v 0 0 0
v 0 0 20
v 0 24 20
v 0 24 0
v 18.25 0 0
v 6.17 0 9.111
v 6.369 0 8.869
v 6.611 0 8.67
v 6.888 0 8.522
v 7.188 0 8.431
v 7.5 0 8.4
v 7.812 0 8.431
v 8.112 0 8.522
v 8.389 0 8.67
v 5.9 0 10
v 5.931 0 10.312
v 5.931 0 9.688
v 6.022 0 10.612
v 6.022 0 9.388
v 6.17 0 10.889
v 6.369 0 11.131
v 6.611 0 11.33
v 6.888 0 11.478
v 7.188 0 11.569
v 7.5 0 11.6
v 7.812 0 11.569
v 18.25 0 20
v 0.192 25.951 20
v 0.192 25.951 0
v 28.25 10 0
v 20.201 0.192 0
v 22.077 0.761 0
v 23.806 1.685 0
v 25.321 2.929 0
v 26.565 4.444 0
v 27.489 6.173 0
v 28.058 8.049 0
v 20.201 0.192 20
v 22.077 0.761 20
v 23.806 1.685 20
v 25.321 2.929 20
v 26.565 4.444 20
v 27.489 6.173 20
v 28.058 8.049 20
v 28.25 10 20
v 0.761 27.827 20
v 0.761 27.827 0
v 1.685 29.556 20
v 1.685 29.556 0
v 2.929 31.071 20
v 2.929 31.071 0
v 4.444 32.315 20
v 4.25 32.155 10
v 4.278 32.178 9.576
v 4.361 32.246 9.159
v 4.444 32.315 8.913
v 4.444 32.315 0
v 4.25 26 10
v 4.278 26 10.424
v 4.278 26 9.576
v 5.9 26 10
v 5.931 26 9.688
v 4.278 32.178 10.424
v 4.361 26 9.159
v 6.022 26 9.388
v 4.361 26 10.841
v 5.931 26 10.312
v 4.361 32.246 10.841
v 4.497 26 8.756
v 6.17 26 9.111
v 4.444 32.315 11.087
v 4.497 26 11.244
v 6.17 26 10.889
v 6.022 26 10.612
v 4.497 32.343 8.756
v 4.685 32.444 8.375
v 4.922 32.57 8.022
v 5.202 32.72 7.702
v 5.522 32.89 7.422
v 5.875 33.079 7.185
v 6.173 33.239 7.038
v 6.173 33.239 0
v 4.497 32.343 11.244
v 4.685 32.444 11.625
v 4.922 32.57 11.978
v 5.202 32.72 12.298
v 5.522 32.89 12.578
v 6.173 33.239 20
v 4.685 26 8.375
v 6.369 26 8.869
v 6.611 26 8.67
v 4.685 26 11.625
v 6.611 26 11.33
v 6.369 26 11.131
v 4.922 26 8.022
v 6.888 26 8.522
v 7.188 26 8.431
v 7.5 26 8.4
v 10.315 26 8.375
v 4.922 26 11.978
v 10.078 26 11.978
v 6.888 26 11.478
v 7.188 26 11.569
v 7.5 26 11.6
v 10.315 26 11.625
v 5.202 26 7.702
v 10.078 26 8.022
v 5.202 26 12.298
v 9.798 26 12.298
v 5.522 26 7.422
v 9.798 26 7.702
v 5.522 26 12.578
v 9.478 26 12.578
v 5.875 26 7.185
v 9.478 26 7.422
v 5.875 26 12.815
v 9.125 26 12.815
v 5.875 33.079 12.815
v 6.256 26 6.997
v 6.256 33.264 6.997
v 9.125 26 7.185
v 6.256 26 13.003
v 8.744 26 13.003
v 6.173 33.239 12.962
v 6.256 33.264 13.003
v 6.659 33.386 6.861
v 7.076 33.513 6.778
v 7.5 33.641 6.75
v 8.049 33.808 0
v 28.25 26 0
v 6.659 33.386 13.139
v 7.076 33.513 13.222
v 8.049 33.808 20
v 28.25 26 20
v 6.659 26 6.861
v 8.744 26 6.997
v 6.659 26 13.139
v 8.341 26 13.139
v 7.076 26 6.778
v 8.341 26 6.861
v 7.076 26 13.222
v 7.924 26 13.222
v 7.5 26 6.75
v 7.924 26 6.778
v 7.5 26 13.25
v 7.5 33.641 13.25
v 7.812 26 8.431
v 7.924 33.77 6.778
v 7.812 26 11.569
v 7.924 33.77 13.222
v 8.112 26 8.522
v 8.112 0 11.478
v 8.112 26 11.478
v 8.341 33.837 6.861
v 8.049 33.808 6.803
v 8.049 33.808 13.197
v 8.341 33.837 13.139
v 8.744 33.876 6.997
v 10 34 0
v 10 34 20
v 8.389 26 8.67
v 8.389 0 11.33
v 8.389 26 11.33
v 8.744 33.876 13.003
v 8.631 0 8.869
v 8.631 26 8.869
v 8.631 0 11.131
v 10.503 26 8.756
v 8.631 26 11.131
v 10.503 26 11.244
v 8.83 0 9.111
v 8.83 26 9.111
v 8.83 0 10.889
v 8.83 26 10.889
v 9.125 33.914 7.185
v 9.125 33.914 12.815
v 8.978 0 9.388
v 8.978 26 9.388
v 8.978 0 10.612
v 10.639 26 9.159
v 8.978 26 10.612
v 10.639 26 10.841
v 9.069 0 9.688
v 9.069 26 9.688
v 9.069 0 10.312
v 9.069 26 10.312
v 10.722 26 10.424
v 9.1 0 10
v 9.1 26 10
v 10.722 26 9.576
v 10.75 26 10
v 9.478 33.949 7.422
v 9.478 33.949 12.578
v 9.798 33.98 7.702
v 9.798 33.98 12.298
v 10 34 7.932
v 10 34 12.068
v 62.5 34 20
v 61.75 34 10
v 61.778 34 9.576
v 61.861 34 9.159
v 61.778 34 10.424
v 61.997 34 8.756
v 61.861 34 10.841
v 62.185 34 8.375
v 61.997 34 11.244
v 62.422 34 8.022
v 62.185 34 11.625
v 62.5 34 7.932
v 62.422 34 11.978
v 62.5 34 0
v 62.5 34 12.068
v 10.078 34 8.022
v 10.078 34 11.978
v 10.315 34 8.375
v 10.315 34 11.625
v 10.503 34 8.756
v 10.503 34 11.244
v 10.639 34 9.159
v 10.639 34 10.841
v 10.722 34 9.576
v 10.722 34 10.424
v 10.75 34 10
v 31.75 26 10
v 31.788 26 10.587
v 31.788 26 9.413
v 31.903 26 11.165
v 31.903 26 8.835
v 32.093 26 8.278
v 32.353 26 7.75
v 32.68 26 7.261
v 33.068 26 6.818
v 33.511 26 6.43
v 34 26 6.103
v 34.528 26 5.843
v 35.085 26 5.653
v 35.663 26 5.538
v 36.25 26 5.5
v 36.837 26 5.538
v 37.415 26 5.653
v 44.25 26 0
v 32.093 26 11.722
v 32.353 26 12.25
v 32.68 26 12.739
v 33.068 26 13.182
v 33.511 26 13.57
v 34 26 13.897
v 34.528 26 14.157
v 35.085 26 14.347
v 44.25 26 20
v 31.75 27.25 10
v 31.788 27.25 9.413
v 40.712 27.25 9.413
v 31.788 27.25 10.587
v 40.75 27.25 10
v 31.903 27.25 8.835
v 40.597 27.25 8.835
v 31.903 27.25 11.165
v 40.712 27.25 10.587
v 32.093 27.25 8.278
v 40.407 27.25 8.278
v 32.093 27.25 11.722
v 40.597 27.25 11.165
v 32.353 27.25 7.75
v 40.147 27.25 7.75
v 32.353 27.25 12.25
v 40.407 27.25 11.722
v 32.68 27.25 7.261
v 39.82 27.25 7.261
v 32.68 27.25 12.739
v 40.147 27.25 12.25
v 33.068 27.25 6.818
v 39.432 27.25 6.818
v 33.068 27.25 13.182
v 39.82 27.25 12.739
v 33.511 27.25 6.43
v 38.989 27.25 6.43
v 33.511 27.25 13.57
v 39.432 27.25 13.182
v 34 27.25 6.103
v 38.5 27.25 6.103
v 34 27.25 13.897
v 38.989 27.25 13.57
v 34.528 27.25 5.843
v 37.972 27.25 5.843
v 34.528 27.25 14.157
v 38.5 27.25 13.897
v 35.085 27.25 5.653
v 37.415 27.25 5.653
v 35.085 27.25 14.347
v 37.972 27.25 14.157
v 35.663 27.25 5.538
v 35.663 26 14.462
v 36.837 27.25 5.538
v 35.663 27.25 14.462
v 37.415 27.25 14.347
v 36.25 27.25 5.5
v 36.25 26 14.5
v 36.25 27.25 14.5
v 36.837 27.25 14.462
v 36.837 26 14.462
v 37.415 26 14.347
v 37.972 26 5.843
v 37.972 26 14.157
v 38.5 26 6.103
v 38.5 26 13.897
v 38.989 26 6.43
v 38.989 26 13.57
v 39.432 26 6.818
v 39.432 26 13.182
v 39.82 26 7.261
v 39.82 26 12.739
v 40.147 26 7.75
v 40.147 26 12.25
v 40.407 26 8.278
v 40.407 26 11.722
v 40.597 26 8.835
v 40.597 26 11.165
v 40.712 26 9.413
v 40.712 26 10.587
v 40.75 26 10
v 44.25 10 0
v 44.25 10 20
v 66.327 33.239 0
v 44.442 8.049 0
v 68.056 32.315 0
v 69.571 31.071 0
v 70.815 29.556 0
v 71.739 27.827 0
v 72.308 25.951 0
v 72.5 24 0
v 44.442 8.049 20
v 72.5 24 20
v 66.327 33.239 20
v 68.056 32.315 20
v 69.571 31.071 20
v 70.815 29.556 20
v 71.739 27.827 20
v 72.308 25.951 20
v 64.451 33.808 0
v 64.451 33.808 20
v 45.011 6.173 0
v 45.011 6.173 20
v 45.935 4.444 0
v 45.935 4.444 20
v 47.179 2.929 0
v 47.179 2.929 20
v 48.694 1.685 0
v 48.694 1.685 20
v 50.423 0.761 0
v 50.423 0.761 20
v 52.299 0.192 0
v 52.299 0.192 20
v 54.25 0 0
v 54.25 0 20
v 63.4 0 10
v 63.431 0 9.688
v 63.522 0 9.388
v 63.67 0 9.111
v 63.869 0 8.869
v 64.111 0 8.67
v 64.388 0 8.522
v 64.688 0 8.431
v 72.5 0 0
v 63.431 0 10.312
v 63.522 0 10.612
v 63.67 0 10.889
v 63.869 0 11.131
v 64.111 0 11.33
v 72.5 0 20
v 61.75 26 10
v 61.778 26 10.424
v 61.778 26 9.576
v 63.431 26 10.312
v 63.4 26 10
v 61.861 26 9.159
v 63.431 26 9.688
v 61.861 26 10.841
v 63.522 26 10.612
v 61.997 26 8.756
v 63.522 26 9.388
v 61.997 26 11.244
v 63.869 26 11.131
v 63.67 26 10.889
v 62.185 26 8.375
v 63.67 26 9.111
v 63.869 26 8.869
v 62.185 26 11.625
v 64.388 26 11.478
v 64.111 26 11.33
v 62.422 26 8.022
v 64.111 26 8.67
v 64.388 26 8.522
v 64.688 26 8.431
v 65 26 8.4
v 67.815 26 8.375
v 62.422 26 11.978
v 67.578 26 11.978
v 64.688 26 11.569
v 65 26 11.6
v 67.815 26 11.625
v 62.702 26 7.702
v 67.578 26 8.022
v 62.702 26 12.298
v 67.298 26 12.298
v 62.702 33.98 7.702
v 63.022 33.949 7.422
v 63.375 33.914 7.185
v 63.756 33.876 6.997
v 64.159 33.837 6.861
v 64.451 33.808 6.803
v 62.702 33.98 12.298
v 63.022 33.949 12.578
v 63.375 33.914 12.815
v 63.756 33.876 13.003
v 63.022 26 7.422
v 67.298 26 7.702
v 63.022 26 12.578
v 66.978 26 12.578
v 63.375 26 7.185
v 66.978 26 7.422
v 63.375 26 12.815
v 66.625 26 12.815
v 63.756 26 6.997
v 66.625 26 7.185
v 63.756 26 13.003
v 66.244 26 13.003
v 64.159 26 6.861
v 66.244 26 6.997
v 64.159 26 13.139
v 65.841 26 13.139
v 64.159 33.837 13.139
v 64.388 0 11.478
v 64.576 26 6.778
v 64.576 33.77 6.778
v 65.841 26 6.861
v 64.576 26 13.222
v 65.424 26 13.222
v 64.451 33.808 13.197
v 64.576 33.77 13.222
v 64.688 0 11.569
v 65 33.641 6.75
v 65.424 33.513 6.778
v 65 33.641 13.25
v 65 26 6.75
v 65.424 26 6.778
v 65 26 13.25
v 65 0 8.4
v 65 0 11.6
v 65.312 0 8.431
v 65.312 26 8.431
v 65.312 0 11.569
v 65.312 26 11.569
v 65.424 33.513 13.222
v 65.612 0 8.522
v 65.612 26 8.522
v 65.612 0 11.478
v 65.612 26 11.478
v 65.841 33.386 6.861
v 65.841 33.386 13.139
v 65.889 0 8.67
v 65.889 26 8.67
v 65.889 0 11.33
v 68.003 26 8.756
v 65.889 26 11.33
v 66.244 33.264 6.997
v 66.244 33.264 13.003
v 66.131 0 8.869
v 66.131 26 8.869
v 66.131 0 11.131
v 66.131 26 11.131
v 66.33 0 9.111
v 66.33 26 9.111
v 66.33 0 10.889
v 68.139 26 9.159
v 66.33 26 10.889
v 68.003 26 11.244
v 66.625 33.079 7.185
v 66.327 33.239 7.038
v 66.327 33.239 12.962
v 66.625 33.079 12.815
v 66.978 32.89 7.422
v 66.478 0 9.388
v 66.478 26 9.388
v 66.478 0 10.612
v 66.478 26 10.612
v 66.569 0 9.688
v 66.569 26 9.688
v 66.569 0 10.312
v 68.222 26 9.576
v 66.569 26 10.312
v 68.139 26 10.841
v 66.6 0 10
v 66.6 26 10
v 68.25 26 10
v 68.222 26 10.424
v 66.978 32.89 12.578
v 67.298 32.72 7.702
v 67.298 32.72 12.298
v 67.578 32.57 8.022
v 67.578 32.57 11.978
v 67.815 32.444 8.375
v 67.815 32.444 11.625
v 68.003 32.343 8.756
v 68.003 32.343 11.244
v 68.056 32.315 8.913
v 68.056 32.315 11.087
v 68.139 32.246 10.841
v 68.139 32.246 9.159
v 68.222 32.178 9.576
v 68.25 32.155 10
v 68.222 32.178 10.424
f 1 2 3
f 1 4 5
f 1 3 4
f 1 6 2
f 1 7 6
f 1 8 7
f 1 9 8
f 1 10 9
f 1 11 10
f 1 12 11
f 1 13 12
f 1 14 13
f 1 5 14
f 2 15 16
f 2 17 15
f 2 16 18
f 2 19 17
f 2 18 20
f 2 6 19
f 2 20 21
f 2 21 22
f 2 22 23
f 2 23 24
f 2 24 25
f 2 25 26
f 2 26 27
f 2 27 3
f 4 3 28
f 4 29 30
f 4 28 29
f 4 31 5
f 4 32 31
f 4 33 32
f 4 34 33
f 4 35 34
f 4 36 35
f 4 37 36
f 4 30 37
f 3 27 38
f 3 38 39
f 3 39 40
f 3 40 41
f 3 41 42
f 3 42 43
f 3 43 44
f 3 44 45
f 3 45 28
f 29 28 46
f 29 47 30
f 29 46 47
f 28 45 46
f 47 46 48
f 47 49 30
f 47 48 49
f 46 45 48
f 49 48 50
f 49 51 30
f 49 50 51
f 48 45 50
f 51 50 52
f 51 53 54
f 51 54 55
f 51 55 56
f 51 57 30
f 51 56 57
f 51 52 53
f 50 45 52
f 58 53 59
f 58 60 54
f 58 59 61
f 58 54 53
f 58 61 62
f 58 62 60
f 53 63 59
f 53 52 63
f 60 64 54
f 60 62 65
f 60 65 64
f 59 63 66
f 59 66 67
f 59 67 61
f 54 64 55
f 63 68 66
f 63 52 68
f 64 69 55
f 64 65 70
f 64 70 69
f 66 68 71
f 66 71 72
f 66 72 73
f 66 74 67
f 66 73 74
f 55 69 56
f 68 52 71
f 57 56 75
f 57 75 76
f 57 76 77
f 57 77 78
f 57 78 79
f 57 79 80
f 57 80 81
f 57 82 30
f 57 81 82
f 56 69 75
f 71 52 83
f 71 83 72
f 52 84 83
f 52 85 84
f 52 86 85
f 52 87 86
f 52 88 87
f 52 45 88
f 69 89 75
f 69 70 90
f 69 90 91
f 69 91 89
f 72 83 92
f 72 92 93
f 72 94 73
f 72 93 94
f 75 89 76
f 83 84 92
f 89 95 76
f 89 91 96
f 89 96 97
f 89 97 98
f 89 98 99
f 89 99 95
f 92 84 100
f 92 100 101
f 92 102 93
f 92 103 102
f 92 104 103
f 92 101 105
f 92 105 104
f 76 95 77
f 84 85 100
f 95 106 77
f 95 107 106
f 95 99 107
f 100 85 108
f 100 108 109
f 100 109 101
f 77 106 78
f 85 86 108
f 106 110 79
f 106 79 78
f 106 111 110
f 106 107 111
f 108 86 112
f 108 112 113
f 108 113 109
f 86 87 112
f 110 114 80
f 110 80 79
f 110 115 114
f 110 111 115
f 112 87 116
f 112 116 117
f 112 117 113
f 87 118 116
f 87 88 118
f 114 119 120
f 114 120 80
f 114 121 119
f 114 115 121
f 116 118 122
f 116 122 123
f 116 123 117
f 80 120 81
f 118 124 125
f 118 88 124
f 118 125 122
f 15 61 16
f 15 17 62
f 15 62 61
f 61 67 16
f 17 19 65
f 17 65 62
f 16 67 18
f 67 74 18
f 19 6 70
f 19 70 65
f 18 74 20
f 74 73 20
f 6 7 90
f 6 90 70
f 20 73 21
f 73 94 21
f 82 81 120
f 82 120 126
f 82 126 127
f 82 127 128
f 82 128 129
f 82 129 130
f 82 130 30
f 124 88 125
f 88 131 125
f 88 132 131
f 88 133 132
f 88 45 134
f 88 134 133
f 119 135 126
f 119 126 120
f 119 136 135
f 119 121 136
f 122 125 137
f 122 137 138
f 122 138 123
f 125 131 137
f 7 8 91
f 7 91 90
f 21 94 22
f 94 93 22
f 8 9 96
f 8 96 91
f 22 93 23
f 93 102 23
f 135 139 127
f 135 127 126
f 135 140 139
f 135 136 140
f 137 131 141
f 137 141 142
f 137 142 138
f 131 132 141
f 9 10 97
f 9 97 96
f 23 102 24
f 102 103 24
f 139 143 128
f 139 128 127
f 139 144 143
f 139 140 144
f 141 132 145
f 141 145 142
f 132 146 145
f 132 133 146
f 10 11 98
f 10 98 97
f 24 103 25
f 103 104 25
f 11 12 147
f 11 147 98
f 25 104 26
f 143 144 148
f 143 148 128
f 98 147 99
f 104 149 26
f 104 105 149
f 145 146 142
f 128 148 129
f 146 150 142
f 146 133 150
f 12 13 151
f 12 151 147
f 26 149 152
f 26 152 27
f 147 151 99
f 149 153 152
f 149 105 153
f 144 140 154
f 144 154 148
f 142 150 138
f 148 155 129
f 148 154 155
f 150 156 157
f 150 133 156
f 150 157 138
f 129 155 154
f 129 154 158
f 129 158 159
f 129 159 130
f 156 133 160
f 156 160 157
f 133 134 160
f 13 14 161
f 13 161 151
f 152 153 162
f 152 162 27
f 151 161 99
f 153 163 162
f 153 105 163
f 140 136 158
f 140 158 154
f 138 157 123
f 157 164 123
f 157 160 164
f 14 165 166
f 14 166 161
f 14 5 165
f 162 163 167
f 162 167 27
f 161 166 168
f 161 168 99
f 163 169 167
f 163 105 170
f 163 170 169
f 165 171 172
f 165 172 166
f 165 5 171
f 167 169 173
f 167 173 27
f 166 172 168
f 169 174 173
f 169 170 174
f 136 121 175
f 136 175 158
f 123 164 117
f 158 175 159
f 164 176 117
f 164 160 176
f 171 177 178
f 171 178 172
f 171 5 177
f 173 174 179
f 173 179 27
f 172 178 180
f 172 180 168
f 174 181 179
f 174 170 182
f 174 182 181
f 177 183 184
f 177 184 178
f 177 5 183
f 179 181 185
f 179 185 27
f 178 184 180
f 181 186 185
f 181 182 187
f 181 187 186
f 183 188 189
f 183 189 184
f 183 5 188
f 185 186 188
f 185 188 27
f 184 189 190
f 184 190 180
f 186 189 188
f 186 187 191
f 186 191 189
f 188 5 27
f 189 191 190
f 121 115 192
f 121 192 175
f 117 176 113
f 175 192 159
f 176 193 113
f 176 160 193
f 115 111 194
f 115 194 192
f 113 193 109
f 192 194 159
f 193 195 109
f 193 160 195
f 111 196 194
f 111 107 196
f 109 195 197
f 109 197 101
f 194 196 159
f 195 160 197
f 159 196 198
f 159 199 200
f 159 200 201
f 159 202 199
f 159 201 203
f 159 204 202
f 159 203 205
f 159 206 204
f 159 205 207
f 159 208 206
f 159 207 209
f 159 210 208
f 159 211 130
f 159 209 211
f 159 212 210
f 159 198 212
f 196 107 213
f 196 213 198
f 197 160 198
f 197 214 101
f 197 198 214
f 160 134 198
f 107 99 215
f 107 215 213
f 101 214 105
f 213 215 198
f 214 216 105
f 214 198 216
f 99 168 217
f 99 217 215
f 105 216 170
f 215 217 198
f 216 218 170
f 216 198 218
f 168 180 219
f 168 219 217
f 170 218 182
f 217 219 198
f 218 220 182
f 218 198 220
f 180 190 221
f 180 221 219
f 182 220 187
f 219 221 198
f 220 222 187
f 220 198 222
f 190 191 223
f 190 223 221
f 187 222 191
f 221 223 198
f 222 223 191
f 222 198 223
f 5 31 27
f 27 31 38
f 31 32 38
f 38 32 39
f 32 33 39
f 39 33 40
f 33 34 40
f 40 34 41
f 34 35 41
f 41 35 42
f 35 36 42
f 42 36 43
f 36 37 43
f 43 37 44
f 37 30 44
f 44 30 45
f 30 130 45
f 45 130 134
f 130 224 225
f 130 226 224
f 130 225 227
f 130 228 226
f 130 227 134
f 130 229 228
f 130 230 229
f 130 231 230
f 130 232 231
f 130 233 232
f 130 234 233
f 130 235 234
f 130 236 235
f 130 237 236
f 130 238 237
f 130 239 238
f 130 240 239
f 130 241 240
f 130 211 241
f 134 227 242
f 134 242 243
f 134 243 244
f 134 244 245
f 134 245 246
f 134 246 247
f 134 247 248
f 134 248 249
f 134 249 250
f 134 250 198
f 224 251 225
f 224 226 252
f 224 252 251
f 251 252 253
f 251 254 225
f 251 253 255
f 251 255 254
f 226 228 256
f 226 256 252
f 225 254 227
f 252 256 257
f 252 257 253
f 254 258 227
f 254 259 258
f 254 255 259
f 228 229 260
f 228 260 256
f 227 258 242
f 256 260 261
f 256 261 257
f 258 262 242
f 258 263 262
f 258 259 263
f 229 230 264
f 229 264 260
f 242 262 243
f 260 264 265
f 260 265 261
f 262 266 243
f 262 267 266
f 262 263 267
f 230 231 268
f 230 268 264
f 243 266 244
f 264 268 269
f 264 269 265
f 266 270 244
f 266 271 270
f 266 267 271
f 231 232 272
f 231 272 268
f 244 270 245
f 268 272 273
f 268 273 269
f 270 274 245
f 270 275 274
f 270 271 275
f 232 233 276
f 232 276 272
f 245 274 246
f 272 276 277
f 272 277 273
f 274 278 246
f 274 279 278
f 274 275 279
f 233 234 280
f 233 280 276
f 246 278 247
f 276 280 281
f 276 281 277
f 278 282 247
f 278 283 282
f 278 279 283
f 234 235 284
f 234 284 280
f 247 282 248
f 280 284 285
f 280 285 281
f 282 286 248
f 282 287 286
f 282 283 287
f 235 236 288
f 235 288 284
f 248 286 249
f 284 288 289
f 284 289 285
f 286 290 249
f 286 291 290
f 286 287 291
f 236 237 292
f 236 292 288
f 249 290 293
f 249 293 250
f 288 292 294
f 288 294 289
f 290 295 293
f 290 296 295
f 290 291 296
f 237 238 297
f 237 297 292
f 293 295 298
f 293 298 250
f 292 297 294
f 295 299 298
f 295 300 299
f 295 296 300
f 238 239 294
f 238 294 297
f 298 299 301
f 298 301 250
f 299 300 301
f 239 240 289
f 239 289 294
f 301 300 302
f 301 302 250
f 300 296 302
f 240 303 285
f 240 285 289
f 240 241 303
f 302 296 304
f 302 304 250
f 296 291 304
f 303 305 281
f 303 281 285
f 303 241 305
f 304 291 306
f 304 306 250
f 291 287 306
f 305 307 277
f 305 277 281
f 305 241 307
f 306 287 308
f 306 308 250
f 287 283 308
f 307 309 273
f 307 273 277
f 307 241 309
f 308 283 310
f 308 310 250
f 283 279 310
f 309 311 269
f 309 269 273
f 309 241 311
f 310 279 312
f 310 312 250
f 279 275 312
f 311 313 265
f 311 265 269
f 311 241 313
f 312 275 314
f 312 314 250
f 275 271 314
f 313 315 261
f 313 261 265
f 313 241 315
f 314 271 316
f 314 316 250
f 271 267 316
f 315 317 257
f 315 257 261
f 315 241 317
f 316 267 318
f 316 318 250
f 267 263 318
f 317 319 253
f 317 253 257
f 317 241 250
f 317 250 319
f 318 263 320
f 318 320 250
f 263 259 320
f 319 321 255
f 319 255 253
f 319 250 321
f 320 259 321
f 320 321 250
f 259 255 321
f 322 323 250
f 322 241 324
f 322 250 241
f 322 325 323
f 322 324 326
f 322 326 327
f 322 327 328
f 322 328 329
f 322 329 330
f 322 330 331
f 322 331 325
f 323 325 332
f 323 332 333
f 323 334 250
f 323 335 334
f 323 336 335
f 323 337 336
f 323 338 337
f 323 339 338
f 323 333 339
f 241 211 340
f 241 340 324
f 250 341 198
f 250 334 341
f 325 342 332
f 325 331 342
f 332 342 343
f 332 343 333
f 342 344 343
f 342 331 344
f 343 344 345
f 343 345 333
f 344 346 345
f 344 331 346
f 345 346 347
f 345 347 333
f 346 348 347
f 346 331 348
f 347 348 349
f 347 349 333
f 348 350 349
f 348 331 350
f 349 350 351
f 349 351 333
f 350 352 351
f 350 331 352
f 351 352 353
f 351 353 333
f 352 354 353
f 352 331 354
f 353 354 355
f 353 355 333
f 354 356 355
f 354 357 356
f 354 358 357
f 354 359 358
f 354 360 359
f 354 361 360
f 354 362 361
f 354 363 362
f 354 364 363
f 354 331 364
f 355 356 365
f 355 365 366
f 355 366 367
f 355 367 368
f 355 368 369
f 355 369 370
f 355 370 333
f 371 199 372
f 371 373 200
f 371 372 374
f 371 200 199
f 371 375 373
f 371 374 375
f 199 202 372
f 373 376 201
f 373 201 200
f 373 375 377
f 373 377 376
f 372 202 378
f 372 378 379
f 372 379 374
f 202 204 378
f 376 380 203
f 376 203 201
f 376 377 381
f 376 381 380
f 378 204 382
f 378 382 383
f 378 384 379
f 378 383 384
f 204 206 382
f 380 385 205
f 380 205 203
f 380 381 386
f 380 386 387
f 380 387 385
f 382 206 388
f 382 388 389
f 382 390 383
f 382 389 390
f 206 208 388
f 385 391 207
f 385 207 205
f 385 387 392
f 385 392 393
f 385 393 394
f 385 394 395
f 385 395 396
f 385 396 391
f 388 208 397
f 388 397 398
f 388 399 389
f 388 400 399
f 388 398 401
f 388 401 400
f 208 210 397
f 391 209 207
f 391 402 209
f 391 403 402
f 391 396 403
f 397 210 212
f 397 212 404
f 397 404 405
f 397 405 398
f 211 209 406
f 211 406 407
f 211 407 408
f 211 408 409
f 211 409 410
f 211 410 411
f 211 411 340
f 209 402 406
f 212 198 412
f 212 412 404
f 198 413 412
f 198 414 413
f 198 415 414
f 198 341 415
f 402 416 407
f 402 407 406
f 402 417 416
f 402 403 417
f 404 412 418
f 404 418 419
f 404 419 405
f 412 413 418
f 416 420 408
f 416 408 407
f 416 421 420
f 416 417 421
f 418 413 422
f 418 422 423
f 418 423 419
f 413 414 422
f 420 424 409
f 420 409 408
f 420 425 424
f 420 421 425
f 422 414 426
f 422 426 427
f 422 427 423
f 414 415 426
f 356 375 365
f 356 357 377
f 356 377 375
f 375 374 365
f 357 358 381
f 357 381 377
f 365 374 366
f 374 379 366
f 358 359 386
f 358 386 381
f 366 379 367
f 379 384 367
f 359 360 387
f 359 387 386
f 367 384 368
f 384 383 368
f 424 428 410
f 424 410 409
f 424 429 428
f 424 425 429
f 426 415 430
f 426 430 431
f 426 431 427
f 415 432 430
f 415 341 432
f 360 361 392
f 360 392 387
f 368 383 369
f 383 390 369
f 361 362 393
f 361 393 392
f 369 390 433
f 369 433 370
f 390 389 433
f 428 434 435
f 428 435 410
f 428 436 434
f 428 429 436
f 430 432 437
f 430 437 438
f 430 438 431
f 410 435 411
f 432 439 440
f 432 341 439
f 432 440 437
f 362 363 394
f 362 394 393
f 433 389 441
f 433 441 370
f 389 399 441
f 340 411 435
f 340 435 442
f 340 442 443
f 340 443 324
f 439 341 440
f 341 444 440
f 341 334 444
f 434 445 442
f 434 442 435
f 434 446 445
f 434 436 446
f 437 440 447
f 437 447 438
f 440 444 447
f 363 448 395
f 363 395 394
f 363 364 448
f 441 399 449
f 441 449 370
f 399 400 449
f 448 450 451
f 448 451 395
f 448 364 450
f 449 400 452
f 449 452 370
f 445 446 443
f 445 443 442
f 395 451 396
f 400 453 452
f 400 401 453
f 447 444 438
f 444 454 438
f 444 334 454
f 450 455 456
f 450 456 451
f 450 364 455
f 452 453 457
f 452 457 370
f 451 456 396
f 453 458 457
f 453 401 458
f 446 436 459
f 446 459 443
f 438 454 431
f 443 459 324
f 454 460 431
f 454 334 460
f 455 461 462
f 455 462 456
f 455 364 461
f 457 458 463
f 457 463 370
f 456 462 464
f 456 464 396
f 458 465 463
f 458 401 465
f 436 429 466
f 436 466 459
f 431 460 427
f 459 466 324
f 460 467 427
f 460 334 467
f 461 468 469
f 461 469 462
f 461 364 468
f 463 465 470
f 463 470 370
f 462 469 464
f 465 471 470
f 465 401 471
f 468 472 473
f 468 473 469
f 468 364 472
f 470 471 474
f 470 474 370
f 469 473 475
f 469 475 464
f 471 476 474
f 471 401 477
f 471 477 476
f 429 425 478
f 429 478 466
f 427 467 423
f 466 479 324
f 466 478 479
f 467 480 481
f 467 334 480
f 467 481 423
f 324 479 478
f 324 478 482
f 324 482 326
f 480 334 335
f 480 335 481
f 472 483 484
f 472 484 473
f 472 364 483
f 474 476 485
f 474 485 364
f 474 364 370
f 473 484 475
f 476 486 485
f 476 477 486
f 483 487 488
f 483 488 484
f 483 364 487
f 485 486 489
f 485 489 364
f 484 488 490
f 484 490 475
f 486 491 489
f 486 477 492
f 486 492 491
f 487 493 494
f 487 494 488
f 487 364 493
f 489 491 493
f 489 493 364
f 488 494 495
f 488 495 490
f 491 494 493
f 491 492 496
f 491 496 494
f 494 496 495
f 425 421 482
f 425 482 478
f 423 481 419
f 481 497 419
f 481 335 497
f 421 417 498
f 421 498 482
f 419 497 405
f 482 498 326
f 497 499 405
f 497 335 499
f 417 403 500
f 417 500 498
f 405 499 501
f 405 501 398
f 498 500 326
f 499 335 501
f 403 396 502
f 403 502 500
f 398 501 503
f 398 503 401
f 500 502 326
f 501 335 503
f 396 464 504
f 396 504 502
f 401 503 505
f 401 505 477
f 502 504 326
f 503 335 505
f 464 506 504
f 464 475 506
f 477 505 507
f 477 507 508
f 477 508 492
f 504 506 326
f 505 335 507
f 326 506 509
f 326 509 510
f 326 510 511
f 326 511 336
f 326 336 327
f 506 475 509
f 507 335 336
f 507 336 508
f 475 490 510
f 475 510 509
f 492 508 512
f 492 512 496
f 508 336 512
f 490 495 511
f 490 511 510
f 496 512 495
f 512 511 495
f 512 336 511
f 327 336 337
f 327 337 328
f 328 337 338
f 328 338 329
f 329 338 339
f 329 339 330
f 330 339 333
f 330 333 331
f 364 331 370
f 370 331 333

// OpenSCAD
// file: lib/utils.scad
// Quarter circle at center; quadrant 0=+x+y, 1=-x+y, 2=-x-y, 3=+x-y
module quarter_round(center, quadrant, corner_radius) {
    translate(center)
        intersection() {
            circle(r = corner_radius, $fn = 32);
            if (quadrant == 0) square([corner_radius, corner_radius]);
            if (quadrant == 1) translate([-corner_radius, 0]) square([corner_radius, corner_radius]);
            if (quadrant == 2) translate([-corner_radius, -corner_radius]) square([corner_radius, corner_radius]);
            if (quadrant == 3) translate([0, -corner_radius]) square([corner_radius, corner_radius]);
        }
}
// main file
plate_size = [77.5, 80];
baffle_width = 20;
extrusion_size = 15;

extrusion_center_offset = plate_size[0] / 2 - baffle_width / 2;
distance_between_outside_faces_of_extrusions = 2 * extrusion_center_offset + extrusion_size;

hammer_extrusion_play = 1;
m3_hole_radius = 3.2 / 2;
m3_groove_diameter = 6.5;

spring_holder_height = 34;
spring_holder_thickness = 20;
spring_holder_top_wall = 8;
spring_holder_corner_radius = 10;
spring_holder_cutout_corner_radius = spring_holder_corner_radius;
spring_groove_size = 9;
spring_groove_depth = 2.5;
spring_holder_screw_length = 30;
spring_holder_screw_extra_for_nut = 4;

use <lib/utils.scad>

module spring_holder(height = spring_holder_height) {
    w = distance_between_outside_faces_of_extrusions;
    r = spring_holder_corner_radius;
    cut_width = extrusion_size + hammer_extrusion_play;
    cut_height = height - spring_holder_top_wall;
    cut_x = (w - cut_width) / 2;
    cr = spring_holder_cutout_corner_radius;
    screw_groove_depth = max(0, (height - spring_holder_screw_length + spring_holder_screw_extra_for_nut));
    echo(screw_groove_depth);

    difference() {
        linear_extrude(height = spring_holder_thickness) {
            union() {
                difference() {
                    // Main body
                    square([w, height]);
                    translate([0, height - r]) square([r, r]);
                    translate([w - r, height - r]) square([r, r]);

                    // Cutout
                    translate([cut_x, 0]) square([cut_width, cut_height]);
                    translate([cut_x - cr, 0]) square([cr, cr]);
                    translate([cut_x + cut_width, 0]) square([cr, cr]);
                }
                quarter_round([r, height - r], 1, r);
                quarter_round([w - r, height - r], 0, r);
                quarter_round([cut_x - cr, cr], 3, cr);
                quarter_round([cut_x + cut_width + cr, cr], 2, cr);
            }
        }
        // Spring groove
        translate([cut_x + cut_width / 2, cut_height + spring_groove_depth / 2, spring_holder_thickness / 2])
            rotate([90, 0, 0])
                cylinder(h = spring_groove_depth + 0.01, r = spring_groove_size / 2, $fn = 48);

        // M3 mounting holes at extrusion centers
        for (hole_x = [extrusion_size / 2, w - extrusion_size / 2]) {
            translate([hole_x, height / 2, spring_holder_thickness / 2])
                rotate([90, 0, 0]) {
                    cylinder(h = height + 0.01, r = m3_hole_radius, center = true, $fn = 32);
                }
            translate([hole_x, height + 0.01, spring_holder_thickness / 2])
                rotate([90, 0, 0])
                    cylinder(h = screw_groove_depth + 0.01, r = m3_groove_diameter / 2, $fn = 48);
        }
    }
}

spring_holder();
